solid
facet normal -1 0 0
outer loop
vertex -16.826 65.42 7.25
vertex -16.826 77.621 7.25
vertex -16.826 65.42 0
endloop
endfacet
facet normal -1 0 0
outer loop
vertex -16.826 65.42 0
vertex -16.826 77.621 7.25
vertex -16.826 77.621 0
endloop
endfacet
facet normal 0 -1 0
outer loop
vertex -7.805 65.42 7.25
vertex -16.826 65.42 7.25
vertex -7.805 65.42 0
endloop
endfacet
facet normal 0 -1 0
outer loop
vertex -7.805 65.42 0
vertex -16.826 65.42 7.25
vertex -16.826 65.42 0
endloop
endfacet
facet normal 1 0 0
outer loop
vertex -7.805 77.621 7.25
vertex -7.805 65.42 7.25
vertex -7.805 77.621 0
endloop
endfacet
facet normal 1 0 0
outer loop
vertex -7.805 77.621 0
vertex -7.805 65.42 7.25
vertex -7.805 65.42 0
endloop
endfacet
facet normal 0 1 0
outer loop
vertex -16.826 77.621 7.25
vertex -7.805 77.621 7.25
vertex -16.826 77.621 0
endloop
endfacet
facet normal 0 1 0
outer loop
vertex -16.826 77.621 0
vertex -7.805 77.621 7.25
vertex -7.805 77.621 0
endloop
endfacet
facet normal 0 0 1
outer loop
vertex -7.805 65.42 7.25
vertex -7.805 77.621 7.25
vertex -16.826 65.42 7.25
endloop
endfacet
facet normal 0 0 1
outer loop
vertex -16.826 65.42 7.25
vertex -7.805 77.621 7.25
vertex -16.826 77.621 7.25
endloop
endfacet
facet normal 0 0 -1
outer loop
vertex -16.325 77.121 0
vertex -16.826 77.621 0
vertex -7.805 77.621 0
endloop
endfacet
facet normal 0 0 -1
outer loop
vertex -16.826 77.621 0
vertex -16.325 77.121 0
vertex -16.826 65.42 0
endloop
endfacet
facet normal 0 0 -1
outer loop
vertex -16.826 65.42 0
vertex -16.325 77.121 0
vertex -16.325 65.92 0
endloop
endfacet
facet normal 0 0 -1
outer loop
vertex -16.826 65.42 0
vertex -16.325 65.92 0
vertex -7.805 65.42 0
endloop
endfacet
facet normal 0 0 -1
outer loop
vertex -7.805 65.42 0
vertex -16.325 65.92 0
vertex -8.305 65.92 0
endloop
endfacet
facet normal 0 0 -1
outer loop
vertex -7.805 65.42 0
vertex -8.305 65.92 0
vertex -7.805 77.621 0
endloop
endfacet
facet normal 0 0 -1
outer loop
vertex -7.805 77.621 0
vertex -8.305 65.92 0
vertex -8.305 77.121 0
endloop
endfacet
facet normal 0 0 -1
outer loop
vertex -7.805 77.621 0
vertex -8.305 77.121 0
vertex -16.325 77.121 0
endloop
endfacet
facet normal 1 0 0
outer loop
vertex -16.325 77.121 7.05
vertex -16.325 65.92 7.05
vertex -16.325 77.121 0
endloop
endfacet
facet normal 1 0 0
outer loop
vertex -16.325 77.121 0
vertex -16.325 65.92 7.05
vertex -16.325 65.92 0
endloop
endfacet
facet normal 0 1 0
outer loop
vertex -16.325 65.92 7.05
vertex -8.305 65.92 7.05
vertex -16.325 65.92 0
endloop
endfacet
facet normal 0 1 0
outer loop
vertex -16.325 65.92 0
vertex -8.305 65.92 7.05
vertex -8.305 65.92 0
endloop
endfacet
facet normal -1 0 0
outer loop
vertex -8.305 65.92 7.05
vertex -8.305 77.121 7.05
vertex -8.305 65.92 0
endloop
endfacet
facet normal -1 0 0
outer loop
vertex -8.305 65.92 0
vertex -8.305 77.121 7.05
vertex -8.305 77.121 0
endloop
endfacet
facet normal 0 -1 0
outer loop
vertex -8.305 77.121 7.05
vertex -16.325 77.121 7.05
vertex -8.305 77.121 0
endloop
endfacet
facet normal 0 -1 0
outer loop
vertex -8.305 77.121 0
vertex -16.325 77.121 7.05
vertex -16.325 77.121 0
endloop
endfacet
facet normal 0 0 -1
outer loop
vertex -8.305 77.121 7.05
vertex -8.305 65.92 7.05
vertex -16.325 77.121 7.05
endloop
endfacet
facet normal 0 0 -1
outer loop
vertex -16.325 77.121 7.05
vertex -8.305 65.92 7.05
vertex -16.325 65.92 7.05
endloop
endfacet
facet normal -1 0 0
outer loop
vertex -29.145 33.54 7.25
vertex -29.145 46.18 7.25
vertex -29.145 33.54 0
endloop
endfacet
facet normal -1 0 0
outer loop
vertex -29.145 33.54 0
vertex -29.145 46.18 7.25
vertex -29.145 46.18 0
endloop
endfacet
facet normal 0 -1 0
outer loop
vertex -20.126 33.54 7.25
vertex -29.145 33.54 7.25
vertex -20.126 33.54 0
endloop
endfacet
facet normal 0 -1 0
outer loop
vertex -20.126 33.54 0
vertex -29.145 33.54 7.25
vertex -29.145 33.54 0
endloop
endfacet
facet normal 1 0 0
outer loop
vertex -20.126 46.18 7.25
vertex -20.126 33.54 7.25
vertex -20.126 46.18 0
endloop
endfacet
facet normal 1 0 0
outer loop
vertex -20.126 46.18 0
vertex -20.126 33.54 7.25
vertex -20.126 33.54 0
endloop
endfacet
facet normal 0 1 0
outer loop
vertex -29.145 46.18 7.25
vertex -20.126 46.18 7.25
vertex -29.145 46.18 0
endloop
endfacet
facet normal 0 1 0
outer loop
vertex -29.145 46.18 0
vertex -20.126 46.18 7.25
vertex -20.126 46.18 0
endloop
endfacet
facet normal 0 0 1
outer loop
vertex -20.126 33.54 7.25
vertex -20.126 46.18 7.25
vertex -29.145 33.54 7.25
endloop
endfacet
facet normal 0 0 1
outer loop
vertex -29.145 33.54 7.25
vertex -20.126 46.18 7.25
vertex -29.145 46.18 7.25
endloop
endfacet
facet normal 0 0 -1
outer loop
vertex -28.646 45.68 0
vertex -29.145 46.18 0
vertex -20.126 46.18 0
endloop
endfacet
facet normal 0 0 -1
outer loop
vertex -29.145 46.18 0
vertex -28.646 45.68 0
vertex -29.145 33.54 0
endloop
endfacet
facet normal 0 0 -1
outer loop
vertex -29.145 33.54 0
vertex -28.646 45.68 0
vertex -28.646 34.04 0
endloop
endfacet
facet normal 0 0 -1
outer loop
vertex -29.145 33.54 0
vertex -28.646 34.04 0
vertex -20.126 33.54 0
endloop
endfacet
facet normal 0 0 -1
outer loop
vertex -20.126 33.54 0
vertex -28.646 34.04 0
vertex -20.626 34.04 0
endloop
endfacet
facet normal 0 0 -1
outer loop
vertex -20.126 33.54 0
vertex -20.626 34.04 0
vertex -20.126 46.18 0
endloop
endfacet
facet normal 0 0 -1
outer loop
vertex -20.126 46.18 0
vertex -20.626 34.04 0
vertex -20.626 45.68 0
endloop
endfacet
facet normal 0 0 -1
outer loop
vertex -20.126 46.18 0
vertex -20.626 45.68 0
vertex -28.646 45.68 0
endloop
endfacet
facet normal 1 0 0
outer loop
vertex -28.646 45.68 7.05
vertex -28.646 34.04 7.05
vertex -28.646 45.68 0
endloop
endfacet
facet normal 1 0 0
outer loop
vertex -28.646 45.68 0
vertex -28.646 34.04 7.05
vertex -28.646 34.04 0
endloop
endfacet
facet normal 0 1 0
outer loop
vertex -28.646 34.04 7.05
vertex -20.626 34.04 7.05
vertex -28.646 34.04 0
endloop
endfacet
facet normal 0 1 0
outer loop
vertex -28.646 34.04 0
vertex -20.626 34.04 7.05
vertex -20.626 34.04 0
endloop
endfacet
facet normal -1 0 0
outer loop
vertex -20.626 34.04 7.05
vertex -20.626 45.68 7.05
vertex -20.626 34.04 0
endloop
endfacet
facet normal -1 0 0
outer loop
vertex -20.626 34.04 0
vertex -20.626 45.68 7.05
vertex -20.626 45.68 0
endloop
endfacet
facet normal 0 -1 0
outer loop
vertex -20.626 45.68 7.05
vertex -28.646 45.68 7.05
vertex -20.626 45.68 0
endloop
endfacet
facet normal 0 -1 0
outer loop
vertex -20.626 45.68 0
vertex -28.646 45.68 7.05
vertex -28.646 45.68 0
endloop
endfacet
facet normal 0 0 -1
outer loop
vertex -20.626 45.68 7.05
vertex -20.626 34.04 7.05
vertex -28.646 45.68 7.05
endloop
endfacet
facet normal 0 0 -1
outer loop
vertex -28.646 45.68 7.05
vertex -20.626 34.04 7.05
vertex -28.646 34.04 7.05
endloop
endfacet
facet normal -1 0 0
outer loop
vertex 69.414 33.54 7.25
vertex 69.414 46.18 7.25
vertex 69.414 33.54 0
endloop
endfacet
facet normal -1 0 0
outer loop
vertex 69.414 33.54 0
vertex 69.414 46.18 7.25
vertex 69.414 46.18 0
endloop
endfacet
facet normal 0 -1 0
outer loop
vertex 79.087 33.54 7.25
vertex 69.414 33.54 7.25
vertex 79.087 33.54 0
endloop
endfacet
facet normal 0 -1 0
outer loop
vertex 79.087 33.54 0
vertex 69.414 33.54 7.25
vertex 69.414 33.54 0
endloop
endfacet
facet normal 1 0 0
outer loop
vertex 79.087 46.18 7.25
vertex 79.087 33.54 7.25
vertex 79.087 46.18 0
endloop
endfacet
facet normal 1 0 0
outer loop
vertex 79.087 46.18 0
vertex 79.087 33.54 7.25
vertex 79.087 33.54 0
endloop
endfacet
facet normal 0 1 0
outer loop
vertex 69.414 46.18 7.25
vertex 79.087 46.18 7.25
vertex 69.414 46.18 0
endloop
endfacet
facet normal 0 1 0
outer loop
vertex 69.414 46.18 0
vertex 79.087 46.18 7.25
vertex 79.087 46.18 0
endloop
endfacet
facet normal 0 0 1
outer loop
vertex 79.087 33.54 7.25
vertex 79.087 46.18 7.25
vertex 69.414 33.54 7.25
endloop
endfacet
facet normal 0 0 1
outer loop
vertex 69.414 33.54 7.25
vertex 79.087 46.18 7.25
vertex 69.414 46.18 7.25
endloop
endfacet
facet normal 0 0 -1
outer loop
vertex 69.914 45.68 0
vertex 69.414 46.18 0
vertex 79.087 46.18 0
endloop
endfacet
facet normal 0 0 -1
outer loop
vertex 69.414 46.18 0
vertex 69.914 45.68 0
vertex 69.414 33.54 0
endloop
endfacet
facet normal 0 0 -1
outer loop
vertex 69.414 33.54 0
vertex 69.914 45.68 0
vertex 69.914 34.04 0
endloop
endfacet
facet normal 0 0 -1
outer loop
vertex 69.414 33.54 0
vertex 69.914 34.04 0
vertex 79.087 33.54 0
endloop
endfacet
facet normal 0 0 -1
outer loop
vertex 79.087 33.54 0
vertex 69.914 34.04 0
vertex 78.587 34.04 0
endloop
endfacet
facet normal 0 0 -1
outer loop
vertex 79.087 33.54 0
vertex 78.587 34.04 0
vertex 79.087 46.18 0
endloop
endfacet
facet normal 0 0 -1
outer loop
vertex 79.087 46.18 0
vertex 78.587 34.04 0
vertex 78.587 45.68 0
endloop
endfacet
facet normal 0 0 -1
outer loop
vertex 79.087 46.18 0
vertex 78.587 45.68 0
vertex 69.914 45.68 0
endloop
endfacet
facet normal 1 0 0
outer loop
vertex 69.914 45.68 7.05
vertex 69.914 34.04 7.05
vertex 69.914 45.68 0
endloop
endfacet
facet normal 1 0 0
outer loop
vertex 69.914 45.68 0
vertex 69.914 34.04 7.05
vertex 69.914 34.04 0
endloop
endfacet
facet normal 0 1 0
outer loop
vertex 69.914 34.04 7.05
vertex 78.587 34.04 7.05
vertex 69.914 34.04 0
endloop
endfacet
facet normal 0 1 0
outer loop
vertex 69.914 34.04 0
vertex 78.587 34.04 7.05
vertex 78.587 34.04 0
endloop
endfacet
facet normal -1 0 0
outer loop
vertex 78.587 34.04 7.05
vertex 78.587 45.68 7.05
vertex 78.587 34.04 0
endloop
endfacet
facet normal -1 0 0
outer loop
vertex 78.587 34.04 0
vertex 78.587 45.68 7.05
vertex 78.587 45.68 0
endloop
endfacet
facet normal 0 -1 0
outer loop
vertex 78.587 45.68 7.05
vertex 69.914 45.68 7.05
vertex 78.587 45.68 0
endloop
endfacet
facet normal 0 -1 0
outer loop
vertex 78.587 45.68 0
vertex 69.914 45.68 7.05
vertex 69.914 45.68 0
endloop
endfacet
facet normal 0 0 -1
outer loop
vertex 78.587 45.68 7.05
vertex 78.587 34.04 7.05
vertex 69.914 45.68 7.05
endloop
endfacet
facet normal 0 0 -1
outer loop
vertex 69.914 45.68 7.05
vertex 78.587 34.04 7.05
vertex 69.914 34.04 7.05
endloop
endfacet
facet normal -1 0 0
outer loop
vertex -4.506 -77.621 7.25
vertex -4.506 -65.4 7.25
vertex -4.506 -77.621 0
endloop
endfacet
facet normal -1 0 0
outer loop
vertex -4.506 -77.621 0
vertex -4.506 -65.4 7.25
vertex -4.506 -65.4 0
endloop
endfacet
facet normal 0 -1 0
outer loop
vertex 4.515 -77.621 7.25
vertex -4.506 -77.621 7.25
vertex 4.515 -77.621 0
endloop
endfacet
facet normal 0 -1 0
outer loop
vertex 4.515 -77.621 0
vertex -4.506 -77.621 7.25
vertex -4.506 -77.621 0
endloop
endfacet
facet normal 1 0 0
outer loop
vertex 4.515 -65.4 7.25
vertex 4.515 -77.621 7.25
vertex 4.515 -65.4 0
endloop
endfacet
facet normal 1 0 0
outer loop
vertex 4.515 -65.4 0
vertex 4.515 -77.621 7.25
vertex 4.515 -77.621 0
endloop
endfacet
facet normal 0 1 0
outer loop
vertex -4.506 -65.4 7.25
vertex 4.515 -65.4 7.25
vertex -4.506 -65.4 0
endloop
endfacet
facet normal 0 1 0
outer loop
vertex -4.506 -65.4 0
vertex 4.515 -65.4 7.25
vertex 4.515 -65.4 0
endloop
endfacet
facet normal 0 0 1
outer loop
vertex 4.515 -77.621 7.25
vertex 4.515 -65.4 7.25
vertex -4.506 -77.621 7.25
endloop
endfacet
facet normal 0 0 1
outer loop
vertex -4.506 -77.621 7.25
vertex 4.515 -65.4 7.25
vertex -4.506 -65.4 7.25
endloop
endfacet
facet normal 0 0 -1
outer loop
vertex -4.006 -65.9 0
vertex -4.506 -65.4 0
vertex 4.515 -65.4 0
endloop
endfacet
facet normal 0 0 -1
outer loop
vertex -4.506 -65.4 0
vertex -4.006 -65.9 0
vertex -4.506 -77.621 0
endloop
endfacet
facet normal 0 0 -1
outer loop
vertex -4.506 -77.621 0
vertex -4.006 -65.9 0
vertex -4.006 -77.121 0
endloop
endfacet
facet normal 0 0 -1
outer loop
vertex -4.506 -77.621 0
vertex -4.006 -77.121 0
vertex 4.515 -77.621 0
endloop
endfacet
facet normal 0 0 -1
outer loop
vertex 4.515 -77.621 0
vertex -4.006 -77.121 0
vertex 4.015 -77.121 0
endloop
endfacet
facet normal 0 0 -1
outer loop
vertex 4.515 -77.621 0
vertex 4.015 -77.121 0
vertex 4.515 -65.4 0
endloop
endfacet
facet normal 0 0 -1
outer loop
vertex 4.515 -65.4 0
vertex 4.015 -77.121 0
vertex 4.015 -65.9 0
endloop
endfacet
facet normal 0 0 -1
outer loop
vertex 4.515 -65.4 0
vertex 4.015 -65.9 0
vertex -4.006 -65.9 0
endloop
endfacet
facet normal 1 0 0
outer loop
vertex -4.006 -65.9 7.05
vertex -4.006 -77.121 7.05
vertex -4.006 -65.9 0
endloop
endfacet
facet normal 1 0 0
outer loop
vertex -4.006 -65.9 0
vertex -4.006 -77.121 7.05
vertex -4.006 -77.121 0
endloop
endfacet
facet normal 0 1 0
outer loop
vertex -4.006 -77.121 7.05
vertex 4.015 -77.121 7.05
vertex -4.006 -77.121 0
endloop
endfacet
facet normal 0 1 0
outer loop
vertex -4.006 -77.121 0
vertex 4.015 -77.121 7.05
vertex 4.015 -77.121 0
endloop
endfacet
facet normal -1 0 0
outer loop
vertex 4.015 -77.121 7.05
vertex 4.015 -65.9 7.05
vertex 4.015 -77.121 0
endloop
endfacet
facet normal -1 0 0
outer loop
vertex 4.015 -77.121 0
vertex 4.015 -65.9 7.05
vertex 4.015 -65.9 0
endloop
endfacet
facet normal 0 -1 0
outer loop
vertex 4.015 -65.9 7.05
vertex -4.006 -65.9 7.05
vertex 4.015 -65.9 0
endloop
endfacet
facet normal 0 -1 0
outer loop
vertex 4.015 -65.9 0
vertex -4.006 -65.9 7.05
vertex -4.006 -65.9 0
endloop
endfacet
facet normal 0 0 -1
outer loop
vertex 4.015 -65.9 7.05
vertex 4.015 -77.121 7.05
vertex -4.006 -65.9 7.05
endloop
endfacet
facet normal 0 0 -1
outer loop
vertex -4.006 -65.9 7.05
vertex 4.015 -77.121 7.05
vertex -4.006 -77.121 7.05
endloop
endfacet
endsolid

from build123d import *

# Parameters (mm, degrees)
SKETCH1_W                 = 9.02
SKETCH1_H                 = 12.201430126
BOSS_EXTRUDE1_DEPTH       = 7.25
SKETCH1_H_2               = 12.64
BOSS_EXTRUDE1_2_DEPTH     = 7.25
SKETCH1_W_2               = 9.67230149
BOSS_EXTRUDE1_3_DEPTH     = 7.25
SKETCH1_H_3               = 12.221430126
BOSS_EXTRUDE1_4_DEPTH     = 7.25
SHELL1_T                  = -0.5
SHELL1_THICKNESS_2_FACE_W = 8.02
SHELL1_THICKNESS_2_FACE_H = 11.201430126
SHELL1_THICKNESS_2_DEPTH  = 0.3
SHELL2_T                  = -0.5
SHELL2_THICKNESS_2_FACE_W = 8.02
SHELL2_THICKNESS_2_FACE_H = 11.64
SHELL2_THICKNESS_2_DEPTH  = 0.3
SHELL3_T                  = -0.5
SHELL3_THICKNESS_2_FACE_W = 8.67230149
SHELL3_THICKNESS_2_FACE_H = 11.64
SHELL3_THICKNESS_2_DEPTH  = 0.3
SHELL4_T                  = -0.5
SHELL4_THICKNESS_2_FACE_W = 8.02
SHELL4_THICKNESS_2_FACE_H = 11.221430126
SHELL4_THICKNESS_2_DEPTH  = 0.3


with BuildPart() as part:
    # Sketch1 → Boss-Extrude1 (new body)
    with BuildSketch(Plane.XY):
        with Locations((-12.3155, 71.520715063)):
            Rectangle(SKETCH1_W, SKETCH1_H)
    extrude(amount=BOSS_EXTRUDE1_DEPTH)

    # Shell1
    shell1_openings = [part.faces().sort_by_distance(p)[0] for p in [
        (-12.3155, 71.520715063, 0),
    ]]
    offset(amount=SHELL1_T, openings=shell1_openings, kind=Kind.INTERSECTION)

    # Shell1 thickness 2 face (on inner face of the shell) → Shell1 thickness 2 (cut)
    with BuildSketch(Plane(origin=(-12.3155, 71.520715063, 6.75), x_dir=(1, 0, 0), z_dir=(0, 0, 1))):
        Rectangle(SHELL1_THICKNESS_2_FACE_W, SHELL1_THICKNESS_2_FACE_H)
    extrude(amount=SHELL1_THICKNESS_2_DEPTH, mode=Mode.SUBTRACT)


with BuildPart() as body_2:
    # Sketch1 → Boss-Extrude1 2 (new body)
    with BuildSketch(Plane.XY):
        with Locations((-24.6355, 39.86)):
            Rectangle(SKETCH1_W, SKETCH1_H_2)
    extrude(amount=BOSS_EXTRUDE1_2_DEPTH)

    # Shell2
    shell2_openings = [body_2.faces().sort_by_distance(p)[0] for p in [
        (-24.6355, 39.86, 0),
    ]]
    offset(amount=SHELL2_T, openings=shell2_openings, kind=Kind.INTERSECTION)

    # Shell2 thickness 2 face (on inner face of the shell) → Shell2 thickness 2 (cut)
    with BuildSketch(Plane(origin=(-24.6355, 39.86, 6.75), x_dir=(1, 0, 0), z_dir=(0, 0, 1))):
        Rectangle(SHELL2_THICKNESS_2_FACE_W, SHELL2_THICKNESS_2_FACE_H)
    extrude(amount=SHELL2_THICKNESS_2_DEPTH, mode=Mode.SUBTRACT)


with BuildPart() as body_3:
    # Sketch1 → Boss-Extrude1 3 (new body)
    with BuildSketch(Plane.XY):
        with Locations((74.250650745, 39.86)):
            Rectangle(SKETCH1_W_2, SKETCH1_H_2)
    extrude(amount=BOSS_EXTRUDE1_3_DEPTH)

    # Shell3
    shell3_openings = [body_3.faces().sort_by_distance(p)[0] for p in [
        (74.250650745, 39.86, 0),
    ]]
    offset(amount=SHELL3_T, openings=shell3_openings, kind=Kind.INTERSECTION)

    # Shell3 thickness 2 face (on inner face of the shell) → Shell3 thickness 2 (cut)
    with BuildSketch(Plane(origin=(74.250650745, 39.86, 6.75), x_dir=(1, 0, 0), z_dir=(0, 0, 1))):
        Rectangle(SHELL3_THICKNESS_2_FACE_W, SHELL3_THICKNESS_2_FACE_H)
    extrude(amount=SHELL3_THICKNESS_2_DEPTH, mode=Mode.SUBTRACT)


with BuildPart() as body_4:
    # Sketch1 → Boss-Extrude1 4 (new body)
    with BuildSketch(Plane.XY):
        with Locations((0.0045, -71.510715063)):
            Rectangle(SKETCH1_W, SKETCH1_H_3)
    extrude(amount=BOSS_EXTRUDE1_4_DEPTH)

    # Shell4
    shell4_openings = [body_4.faces().sort_by_distance(p)[0] for p in [
        (0.0045, -71.510715063, 0),
    ]]
    offset(amount=SHELL4_T, openings=shell4_openings, kind=Kind.INTERSECTION)

    # Shell4 thickness 2 face (on inner face of the shell) → Shell4 thickness 2 (cut)
    with BuildSketch(Plane(origin=(0.0045, -71.510715063, 6.75), x_dir=(1, 0, 0), z_dir=(0, 0, 1))):
        Rectangle(SHELL4_THICKNESS_2_FACE_W, SHELL4_THICKNESS_2_FACE_H)
    extrude(amount=SHELL4_THICKNESS_2_DEPTH, mode=Mode.SUBTRACT)


solid = Compound([part.part, body_2.part, body_3.part, body_4.part])
